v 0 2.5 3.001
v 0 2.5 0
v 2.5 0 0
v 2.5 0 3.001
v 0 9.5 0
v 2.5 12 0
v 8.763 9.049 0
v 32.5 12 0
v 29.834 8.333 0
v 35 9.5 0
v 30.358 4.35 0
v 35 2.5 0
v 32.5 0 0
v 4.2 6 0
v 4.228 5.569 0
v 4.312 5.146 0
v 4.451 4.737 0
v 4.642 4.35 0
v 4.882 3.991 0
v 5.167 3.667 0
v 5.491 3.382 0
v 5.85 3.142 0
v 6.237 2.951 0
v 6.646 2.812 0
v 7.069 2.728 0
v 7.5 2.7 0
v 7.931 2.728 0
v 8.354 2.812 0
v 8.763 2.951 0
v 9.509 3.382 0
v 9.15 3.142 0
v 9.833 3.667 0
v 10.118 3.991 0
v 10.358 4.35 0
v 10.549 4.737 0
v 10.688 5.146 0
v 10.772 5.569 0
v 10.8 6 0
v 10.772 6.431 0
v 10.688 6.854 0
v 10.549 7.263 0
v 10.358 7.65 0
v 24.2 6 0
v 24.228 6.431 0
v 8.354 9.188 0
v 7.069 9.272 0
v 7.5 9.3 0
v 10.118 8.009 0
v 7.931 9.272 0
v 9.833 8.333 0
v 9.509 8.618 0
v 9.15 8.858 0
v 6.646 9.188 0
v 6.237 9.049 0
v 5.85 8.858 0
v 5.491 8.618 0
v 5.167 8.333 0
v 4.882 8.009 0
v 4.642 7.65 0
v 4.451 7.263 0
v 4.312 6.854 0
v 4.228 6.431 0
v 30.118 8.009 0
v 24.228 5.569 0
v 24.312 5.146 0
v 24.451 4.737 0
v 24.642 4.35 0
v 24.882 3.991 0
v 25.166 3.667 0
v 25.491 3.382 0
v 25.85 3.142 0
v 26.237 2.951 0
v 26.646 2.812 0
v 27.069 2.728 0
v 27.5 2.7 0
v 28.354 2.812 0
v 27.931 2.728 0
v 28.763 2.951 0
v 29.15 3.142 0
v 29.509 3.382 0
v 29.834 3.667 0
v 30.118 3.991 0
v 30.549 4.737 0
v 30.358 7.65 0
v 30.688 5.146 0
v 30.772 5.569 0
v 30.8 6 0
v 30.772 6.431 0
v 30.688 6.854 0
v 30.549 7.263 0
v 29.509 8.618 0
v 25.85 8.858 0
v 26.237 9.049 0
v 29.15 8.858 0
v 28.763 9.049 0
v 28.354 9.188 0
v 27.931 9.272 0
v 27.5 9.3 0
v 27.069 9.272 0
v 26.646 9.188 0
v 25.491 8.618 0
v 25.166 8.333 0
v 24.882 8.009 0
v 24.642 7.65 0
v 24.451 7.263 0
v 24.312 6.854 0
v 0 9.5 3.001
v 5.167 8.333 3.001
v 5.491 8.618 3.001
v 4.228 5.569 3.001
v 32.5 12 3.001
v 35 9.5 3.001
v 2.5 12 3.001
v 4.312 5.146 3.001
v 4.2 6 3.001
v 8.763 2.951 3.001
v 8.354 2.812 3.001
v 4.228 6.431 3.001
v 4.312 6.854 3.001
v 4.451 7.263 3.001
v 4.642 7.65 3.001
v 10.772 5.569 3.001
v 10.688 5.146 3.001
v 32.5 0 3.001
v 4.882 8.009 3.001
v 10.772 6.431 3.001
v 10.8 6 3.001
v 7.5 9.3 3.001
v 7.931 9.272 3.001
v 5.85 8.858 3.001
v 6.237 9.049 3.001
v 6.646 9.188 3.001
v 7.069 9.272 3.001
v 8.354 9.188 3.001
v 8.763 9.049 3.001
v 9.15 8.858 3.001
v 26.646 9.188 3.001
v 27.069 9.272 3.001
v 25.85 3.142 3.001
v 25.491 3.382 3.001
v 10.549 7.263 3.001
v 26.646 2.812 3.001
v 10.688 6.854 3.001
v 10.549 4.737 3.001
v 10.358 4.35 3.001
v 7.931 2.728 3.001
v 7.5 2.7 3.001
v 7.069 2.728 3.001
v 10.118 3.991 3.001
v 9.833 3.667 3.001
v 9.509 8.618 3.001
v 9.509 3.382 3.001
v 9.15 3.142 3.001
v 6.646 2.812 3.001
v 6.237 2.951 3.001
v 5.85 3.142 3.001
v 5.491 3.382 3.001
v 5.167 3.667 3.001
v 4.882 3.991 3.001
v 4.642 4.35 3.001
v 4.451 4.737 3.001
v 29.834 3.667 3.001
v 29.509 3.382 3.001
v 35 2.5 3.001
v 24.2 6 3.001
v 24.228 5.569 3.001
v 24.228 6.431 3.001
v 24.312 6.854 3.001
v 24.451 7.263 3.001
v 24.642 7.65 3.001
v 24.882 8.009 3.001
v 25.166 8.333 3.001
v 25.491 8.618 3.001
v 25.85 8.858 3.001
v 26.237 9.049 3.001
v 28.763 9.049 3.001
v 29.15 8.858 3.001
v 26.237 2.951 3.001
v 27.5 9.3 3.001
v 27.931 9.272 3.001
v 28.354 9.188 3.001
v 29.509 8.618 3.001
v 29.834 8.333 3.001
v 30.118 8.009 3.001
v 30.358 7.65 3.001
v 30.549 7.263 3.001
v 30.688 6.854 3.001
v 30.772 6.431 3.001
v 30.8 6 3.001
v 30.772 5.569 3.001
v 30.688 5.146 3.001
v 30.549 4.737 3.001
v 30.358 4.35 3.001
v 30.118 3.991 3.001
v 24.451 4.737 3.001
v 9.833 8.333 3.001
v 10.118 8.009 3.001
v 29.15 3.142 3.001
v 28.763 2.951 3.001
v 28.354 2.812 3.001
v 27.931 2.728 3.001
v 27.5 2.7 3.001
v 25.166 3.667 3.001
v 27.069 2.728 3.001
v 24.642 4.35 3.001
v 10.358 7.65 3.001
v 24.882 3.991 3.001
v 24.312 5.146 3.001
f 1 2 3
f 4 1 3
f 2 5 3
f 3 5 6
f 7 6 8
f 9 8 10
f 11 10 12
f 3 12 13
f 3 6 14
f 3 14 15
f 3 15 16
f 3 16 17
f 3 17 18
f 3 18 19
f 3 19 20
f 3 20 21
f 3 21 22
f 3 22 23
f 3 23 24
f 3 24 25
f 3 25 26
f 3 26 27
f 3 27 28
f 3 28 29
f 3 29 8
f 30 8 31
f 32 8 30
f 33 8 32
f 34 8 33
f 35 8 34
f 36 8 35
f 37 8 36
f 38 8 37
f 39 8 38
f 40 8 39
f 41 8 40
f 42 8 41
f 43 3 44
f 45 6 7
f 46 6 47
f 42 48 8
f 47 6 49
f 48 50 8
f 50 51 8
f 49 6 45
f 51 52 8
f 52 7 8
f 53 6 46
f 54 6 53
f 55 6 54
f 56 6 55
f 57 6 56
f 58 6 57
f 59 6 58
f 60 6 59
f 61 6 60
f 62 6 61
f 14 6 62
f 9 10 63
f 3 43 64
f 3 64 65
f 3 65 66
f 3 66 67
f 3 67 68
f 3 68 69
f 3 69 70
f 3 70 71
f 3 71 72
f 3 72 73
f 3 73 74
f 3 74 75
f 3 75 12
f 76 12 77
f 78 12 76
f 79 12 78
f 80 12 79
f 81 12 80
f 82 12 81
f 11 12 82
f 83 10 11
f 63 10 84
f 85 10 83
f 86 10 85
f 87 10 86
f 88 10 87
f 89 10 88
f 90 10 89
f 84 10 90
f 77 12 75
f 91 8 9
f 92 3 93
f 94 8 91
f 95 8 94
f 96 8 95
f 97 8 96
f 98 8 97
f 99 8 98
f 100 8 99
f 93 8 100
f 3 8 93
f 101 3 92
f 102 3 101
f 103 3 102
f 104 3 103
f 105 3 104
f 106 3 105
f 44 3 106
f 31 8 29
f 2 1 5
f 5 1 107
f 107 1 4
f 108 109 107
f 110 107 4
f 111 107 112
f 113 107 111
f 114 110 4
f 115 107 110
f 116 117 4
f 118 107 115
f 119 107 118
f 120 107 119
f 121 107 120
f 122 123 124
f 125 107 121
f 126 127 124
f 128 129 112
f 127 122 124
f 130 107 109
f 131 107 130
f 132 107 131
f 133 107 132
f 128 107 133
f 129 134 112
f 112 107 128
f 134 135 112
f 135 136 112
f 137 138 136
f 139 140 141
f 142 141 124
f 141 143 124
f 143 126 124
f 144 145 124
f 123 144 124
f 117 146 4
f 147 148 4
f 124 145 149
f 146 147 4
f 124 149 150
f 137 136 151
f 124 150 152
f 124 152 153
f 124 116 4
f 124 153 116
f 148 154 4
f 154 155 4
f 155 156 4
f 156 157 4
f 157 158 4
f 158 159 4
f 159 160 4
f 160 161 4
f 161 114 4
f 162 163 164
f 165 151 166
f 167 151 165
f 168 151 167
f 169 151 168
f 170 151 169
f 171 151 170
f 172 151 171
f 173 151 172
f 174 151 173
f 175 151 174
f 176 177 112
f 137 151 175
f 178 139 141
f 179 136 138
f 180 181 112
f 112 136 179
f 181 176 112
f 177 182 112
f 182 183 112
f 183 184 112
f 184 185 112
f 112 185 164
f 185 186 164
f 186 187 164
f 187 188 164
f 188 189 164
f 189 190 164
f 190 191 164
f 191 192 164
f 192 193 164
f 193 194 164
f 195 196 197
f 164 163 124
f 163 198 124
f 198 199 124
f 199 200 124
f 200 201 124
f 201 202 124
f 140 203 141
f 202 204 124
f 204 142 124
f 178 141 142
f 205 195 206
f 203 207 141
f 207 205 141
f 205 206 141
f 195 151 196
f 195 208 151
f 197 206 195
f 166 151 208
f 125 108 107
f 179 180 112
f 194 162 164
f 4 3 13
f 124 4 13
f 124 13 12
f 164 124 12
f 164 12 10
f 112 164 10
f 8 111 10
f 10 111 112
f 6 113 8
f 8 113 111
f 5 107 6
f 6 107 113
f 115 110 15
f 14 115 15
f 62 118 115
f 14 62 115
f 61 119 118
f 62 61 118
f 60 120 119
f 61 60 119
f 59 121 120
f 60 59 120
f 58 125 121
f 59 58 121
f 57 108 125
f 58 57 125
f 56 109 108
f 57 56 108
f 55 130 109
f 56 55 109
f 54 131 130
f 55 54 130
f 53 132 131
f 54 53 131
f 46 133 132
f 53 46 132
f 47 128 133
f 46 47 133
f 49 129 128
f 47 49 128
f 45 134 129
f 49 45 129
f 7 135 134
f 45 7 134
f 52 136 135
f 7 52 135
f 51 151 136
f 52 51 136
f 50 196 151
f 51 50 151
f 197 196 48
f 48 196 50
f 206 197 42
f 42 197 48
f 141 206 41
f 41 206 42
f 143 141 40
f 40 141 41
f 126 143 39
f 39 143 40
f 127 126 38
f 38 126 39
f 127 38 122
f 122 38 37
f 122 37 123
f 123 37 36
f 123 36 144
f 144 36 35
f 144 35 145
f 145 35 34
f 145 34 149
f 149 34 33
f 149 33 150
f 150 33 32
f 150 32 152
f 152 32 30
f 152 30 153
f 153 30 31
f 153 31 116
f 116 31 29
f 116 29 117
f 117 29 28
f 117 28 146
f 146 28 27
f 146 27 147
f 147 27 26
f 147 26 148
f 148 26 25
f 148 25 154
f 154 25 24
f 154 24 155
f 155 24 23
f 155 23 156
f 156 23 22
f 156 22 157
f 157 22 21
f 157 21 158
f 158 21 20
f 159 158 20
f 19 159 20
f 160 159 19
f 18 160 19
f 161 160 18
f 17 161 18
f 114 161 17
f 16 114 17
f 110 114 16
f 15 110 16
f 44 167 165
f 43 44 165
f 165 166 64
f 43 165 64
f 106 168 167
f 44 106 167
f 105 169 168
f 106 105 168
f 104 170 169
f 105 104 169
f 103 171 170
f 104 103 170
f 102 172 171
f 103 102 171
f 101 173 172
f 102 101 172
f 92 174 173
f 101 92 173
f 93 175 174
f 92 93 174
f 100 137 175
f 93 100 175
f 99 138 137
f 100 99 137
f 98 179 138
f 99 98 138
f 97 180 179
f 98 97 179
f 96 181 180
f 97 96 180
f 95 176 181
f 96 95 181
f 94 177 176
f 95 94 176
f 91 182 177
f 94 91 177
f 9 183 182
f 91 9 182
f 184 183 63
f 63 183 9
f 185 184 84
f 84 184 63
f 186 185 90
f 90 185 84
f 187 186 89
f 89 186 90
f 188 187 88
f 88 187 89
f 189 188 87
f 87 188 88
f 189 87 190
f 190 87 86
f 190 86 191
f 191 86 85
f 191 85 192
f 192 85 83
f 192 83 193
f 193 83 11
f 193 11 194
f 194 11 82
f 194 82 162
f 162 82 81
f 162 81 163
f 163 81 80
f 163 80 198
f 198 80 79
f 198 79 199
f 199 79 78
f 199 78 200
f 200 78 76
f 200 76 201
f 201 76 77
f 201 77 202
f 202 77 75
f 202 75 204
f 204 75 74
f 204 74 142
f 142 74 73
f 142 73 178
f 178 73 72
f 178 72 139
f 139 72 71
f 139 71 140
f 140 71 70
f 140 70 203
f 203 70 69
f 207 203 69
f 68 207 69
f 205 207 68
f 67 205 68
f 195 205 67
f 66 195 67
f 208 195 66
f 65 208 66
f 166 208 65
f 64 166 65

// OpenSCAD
// file: scad/tapercube.scad
module tapercube(width=10, height=10, depth=10, taper=3.0) {
  plane = 0.001;
  hull() {
    translate([taper/2,taper/2,0])
      cube([width-taper, height-taper, plane]);
    translate([0,0,taper/2]) {
      translate([0,taper/2])
        cube([width, height-taper, plane]);
      translate([taper/2,0])
        cube([width-taper, height, plane]);
    }

    translate([taper/2,taper/2,depth-plane])
      cube([width-taper, height-taper, plane]);
    translate([0,0,depth-taper/2]) {
      translate([0,taper/2])
        cube([width, height-taper, plane]);
      translate([taper/2,0])
        cube([width-taper, height, plane]);
    }
  }
}

module cornerless_cube(width=10, height=10, depth=10, taper=3.0) {
  plane = 0.001;
  hull() {
    translate([0,taper/2])
      cube([width, height-taper, plane]);
    translate([taper/2,0])
      cube([width-taper, height, plane]);

    translate([0,0,depth]) {
      translate([0,taper/2])
        cube([width, height-taper, plane]);
      translate([taper/2,0])
        cube([width-taper, height, plane]);
    }
  }
}
// main file
include <scad/tapercube.scad>;

long=100;
shim=0.1;
fudge = 0.3;

bolt_r = 3.0+fudge;

module fastener(between=20, w=35, h=12, th=3) {
  difference() {
    cornerless_cube(w, h, th, 5.0);

    translate([w/2-between/2, h/2, -shim])
      cylinder(r=bolt_r, h=long, $fn=48);

    translate([w/2+between/2, h/2, -shim])
      cylinder(r=bolt_r, h=long, $fn=48);
  }  
}

fastener();
